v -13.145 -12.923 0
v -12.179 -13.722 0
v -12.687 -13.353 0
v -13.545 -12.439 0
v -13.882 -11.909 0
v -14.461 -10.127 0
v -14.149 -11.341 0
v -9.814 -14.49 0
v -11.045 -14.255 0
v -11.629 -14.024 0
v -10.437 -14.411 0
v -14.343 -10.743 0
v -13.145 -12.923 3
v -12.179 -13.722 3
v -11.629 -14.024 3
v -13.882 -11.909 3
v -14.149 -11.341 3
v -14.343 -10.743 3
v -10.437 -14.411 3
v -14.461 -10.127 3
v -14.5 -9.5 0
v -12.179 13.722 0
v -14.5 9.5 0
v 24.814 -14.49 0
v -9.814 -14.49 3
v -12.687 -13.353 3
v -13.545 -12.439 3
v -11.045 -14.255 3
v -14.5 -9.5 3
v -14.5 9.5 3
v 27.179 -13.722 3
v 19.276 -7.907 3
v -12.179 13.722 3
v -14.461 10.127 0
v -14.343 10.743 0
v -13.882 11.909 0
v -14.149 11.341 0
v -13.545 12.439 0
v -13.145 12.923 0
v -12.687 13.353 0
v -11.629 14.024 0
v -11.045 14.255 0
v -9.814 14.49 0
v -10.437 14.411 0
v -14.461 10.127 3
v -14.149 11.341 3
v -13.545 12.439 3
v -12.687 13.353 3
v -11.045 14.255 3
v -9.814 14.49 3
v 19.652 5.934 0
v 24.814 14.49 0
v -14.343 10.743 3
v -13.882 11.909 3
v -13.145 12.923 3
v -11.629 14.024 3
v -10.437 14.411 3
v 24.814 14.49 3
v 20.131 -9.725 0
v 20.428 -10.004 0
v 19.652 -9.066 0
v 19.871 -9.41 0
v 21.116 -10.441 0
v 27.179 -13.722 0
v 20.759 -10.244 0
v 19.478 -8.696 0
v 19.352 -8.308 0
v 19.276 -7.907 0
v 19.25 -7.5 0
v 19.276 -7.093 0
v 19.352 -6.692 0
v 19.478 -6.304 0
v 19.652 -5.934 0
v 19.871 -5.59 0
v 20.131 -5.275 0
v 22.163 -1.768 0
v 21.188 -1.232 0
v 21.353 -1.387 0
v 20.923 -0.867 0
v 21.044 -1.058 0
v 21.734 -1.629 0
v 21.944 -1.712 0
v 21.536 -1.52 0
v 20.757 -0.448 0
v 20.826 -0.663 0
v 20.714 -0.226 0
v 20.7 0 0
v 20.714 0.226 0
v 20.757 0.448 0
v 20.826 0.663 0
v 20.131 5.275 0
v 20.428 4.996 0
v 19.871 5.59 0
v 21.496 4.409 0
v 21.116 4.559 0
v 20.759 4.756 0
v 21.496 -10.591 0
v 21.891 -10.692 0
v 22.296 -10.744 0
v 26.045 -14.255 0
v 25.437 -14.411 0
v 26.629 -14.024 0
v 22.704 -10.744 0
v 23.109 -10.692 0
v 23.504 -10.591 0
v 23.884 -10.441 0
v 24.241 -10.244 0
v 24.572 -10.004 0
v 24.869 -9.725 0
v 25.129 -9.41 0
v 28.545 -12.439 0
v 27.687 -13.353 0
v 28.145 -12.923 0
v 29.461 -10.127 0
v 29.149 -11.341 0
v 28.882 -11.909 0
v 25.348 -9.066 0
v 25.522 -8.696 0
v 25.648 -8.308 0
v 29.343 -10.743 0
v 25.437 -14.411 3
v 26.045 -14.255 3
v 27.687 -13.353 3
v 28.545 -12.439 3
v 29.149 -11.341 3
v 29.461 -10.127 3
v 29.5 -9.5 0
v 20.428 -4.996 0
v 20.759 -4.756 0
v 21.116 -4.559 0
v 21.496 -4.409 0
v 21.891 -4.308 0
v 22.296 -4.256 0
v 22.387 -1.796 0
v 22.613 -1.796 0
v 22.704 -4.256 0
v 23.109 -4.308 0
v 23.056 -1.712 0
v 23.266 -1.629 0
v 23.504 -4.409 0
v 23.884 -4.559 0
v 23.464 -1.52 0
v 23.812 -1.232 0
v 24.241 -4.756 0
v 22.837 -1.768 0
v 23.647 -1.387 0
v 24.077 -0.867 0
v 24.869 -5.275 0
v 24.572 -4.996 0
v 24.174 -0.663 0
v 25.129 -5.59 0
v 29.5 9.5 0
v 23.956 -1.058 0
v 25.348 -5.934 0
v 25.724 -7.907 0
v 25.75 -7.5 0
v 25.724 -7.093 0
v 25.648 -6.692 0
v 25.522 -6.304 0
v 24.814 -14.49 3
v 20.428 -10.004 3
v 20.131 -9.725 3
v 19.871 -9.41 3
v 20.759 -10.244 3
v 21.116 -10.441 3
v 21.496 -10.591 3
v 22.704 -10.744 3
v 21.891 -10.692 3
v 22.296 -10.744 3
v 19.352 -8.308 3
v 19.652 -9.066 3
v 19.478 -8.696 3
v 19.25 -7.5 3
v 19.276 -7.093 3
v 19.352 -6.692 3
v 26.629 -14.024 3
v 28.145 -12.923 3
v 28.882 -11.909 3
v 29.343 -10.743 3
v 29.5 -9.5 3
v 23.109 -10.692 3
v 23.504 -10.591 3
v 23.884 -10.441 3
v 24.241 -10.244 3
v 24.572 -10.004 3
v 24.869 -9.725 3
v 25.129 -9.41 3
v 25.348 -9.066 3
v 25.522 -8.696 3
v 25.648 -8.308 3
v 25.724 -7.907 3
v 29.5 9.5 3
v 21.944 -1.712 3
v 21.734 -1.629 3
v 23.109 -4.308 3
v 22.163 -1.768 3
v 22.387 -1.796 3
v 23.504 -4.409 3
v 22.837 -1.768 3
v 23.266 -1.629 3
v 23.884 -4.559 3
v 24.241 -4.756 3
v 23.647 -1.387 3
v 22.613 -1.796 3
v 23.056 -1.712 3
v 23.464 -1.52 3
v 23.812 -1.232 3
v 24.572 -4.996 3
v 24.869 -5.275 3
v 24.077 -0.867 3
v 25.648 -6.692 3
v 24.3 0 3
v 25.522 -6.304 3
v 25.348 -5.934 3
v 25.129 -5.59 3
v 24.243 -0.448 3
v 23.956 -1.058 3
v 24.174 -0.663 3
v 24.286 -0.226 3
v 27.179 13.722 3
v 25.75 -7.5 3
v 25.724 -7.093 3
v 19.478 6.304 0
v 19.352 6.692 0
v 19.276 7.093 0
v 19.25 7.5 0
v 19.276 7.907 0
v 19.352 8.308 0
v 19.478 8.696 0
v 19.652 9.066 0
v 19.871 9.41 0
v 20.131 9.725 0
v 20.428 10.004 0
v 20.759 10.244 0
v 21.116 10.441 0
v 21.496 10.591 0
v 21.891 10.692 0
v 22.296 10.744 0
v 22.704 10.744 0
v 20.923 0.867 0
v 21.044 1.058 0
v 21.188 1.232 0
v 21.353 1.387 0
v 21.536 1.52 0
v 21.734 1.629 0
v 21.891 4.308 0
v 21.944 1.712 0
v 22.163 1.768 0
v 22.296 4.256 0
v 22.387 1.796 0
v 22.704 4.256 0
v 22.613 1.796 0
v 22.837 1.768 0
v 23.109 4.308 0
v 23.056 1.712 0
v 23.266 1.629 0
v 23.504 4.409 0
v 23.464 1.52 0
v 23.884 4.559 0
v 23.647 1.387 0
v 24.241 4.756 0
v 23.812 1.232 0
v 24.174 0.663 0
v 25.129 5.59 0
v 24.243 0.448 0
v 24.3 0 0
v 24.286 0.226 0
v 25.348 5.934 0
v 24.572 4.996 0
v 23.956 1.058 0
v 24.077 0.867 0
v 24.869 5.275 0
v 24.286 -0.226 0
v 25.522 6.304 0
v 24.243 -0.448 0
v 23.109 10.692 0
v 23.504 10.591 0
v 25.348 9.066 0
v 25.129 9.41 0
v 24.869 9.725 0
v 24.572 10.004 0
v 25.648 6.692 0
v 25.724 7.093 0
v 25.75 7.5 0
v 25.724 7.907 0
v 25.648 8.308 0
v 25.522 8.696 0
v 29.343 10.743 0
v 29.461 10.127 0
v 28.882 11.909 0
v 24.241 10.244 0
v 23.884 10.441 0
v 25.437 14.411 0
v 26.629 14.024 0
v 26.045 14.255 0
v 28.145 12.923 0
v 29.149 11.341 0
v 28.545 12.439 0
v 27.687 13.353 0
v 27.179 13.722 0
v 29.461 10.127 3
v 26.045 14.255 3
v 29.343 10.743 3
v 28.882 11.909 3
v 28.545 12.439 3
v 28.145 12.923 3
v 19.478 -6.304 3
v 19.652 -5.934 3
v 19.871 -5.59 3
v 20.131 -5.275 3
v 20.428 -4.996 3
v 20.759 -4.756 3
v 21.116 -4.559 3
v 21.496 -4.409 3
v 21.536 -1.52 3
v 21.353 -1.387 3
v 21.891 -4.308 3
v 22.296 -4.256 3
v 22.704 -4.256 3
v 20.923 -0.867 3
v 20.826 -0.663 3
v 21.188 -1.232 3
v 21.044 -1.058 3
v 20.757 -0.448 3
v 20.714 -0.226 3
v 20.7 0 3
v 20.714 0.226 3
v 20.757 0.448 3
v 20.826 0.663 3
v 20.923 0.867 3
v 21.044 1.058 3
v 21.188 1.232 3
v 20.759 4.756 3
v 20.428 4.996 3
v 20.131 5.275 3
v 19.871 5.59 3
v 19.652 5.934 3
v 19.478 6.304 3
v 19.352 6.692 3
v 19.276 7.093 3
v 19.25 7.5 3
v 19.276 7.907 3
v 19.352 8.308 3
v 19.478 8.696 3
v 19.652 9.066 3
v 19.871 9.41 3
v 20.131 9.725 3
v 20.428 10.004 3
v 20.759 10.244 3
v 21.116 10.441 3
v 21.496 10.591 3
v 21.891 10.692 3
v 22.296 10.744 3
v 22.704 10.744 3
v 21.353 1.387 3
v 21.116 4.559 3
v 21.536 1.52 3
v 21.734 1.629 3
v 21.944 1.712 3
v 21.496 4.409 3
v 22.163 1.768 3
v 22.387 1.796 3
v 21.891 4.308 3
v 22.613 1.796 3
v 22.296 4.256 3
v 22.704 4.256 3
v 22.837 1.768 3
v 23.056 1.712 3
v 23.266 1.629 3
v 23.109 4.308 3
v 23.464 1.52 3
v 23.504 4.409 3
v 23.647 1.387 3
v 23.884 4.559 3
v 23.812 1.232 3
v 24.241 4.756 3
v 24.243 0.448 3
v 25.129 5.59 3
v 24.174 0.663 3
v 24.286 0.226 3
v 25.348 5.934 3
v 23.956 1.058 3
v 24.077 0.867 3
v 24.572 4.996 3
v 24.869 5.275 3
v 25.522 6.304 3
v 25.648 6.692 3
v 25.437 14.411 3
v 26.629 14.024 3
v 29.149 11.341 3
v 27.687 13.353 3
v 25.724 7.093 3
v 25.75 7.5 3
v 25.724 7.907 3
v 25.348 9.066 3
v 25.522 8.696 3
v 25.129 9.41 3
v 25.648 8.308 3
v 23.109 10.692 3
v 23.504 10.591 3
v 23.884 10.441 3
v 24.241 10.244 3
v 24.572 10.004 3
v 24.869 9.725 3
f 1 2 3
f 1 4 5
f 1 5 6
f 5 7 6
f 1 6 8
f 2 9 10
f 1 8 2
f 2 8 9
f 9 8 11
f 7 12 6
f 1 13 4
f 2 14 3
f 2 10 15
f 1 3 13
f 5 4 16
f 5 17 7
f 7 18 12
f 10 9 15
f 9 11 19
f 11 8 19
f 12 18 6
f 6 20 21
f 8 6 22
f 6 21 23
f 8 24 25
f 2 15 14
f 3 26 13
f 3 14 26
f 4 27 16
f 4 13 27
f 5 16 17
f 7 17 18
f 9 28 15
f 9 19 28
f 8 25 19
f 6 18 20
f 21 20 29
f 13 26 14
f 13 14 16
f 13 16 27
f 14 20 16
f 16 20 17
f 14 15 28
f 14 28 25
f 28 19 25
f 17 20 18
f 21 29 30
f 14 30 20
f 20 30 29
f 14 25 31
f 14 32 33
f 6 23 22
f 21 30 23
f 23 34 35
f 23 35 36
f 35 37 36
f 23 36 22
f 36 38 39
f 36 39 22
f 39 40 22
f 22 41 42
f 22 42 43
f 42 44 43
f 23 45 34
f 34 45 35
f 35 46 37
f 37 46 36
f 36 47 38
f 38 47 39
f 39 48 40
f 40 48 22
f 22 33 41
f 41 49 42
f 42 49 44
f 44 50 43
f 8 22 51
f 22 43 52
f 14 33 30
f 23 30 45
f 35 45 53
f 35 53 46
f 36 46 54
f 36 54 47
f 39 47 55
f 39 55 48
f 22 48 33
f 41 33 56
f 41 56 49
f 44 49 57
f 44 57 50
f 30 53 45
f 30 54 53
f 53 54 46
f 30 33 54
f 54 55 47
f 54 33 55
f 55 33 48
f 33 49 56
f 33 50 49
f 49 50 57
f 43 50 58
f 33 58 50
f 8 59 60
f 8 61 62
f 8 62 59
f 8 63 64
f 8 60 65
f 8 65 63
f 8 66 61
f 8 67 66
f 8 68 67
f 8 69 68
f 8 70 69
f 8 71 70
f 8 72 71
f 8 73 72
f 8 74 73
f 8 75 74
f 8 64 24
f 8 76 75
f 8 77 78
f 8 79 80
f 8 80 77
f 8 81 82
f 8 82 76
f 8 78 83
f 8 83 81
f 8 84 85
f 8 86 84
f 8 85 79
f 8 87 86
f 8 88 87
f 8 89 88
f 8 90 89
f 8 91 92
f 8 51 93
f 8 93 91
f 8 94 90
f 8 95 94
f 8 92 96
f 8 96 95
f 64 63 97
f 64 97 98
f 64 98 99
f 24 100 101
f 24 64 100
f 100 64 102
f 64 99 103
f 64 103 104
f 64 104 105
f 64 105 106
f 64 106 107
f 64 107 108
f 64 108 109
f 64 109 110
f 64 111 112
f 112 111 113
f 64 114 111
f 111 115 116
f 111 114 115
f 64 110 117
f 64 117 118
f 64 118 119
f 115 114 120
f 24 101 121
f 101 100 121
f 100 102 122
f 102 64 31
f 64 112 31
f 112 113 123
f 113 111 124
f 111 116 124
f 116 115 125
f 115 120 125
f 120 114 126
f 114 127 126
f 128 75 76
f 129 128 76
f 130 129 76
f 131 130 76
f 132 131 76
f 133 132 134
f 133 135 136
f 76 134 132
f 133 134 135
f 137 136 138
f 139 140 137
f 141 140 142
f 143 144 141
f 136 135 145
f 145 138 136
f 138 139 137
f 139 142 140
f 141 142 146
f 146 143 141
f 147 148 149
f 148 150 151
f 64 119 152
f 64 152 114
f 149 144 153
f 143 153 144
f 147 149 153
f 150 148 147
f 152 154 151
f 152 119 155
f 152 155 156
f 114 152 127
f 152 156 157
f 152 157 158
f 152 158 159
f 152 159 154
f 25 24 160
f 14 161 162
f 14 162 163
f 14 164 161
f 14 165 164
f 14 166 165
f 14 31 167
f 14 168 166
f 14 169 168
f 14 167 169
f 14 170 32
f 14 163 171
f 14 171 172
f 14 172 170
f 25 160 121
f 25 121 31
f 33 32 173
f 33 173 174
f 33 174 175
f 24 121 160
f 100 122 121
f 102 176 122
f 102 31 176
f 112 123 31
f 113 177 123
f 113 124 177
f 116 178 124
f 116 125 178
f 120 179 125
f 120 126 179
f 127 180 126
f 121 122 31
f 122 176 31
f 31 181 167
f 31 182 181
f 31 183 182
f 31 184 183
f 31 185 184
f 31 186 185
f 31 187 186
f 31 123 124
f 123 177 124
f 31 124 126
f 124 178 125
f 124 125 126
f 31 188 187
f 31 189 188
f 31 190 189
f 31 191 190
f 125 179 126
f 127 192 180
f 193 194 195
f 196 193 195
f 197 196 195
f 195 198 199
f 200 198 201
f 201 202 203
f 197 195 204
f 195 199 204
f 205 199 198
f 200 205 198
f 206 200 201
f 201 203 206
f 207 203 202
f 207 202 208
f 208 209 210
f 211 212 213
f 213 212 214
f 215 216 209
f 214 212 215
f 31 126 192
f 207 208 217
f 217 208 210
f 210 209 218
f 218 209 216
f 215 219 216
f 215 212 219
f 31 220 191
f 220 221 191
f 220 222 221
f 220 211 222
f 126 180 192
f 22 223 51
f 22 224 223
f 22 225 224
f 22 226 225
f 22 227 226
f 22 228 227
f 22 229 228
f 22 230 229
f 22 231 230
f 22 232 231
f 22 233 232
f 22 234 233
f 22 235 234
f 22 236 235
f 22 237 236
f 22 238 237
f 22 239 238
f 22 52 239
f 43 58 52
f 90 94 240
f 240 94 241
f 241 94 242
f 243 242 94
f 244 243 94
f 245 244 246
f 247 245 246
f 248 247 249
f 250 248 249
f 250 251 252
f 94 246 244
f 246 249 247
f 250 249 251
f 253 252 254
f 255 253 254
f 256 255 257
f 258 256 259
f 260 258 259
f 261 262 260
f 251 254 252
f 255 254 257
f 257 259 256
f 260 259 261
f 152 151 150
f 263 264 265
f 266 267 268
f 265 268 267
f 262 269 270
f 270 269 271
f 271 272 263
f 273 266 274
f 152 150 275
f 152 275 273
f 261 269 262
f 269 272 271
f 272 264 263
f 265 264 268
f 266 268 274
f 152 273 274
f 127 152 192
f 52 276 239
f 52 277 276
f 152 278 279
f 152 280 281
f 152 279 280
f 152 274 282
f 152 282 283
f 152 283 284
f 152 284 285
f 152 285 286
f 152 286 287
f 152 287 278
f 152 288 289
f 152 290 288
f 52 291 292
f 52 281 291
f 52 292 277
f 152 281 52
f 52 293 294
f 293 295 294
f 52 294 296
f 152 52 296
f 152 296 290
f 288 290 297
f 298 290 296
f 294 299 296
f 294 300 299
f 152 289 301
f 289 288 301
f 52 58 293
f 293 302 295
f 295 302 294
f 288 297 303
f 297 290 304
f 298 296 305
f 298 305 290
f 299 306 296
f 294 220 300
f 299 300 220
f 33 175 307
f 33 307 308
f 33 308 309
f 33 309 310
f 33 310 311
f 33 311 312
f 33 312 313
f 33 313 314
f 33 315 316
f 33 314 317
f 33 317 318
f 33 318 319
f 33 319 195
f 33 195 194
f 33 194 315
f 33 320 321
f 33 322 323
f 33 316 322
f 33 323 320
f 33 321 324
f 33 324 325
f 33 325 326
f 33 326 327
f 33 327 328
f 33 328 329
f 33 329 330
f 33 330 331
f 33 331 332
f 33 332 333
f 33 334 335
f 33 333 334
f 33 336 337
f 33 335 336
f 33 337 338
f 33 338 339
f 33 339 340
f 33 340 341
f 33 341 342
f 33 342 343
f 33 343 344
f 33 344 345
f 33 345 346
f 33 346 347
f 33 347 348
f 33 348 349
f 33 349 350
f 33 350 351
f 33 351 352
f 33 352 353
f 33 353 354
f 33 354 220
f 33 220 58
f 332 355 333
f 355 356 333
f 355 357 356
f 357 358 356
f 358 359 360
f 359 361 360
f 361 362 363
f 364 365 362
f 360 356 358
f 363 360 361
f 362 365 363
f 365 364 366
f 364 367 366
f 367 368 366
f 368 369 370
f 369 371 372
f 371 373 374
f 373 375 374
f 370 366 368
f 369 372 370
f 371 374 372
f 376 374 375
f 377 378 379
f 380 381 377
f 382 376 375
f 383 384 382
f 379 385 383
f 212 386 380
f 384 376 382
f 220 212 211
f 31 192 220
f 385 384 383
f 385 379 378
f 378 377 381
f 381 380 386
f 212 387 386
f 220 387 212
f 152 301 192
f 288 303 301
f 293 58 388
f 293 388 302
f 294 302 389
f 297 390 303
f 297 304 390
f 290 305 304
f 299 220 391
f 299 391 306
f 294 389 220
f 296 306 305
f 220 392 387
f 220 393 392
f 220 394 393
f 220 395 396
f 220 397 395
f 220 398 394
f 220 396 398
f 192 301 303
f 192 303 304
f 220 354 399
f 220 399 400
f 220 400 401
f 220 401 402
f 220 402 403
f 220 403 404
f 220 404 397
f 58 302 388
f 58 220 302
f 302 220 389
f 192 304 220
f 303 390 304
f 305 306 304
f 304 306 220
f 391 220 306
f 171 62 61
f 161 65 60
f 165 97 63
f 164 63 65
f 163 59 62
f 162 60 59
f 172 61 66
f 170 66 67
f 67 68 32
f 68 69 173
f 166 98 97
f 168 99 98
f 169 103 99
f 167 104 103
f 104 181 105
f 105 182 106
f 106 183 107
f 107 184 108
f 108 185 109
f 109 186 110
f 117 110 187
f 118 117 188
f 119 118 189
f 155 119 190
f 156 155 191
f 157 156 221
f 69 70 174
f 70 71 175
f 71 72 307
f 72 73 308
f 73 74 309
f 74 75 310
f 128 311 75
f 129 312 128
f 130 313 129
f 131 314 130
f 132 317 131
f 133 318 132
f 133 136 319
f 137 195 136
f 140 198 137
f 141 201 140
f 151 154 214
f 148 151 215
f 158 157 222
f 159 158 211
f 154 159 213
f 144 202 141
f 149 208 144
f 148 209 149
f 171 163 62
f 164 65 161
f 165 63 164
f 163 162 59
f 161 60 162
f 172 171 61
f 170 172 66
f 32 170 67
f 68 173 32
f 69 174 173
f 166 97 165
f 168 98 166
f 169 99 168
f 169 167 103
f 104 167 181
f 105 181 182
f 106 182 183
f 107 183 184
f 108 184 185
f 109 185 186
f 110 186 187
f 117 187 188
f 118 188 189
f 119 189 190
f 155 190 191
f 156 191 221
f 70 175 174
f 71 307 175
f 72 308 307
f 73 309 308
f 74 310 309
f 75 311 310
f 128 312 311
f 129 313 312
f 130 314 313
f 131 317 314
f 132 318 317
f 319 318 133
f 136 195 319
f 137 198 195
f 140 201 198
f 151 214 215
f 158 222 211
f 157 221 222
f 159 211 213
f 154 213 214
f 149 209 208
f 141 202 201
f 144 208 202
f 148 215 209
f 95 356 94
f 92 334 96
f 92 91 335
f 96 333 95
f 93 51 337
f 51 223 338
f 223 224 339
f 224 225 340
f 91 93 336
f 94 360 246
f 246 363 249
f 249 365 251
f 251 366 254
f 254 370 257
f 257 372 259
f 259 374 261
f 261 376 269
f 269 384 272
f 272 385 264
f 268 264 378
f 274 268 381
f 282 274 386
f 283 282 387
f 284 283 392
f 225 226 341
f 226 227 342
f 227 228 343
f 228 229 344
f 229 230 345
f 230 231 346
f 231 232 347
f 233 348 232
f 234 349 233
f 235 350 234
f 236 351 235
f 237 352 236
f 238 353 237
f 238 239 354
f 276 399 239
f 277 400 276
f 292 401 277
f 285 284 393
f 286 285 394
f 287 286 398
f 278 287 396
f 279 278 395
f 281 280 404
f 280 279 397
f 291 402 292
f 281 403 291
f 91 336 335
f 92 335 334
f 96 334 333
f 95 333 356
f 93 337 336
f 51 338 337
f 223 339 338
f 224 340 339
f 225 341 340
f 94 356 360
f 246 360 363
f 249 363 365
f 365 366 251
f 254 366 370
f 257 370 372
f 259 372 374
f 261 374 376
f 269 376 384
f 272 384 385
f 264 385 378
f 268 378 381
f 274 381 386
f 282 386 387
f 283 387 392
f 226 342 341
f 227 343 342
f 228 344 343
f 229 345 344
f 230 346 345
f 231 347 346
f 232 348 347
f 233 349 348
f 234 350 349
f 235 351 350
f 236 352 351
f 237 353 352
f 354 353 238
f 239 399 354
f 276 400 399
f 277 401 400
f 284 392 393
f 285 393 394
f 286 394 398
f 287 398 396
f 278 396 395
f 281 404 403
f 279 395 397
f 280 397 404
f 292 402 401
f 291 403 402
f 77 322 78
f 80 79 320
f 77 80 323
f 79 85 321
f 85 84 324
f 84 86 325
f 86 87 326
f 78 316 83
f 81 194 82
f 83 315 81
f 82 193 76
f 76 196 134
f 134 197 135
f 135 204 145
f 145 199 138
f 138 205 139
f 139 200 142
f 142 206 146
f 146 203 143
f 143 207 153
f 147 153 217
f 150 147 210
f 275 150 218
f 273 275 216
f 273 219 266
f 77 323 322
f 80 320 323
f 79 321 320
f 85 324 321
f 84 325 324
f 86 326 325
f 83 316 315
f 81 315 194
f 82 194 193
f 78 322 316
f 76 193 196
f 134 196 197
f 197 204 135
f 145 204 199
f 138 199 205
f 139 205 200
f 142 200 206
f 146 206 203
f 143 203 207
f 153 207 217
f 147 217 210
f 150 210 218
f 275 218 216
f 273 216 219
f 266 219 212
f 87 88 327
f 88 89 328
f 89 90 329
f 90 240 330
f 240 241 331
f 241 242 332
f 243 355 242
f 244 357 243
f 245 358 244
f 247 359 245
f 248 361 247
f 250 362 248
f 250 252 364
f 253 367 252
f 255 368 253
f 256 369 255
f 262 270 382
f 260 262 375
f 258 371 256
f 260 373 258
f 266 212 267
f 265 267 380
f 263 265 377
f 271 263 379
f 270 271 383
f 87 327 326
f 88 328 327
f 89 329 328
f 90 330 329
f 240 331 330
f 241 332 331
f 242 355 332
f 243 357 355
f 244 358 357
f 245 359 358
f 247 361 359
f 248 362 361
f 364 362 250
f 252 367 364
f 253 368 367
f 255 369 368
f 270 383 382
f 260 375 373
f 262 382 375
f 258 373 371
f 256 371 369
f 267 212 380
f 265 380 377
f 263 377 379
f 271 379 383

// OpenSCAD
$fn = 50;

difference() {
	union() {
		translate(v = [7.5, 0.0, 0]) {
			hull() {
				translate(v = [-17.0, 9.5, 0]) {
					cylinder(h = 3, r = 5);
				}
				translate(v = [17.0, 9.5, 0]) {
					cylinder(h = 3, r = 5);
				}
				translate(v = [-17.0, -9.5, 0]) {
					cylinder(h = 3, r = 5);
				}
				translate(v = [17.0, -9.5, 0]) {
					cylinder(h = 3, r = 5);
				}
			}
		}
	}
	union() {
		translate(v = [22.5, -7.5, -1]) {
			cylinder(h = 5, r = 3.25);
		}
		translate(v = [22.5, 7.5, -1]) {
			cylinder(h = 5, r = 3.25);
		}
		translate(v = [22.5, 0.0, -1]) {
			cylinder(h = 5, r = 1.8);
		}
	}
}
